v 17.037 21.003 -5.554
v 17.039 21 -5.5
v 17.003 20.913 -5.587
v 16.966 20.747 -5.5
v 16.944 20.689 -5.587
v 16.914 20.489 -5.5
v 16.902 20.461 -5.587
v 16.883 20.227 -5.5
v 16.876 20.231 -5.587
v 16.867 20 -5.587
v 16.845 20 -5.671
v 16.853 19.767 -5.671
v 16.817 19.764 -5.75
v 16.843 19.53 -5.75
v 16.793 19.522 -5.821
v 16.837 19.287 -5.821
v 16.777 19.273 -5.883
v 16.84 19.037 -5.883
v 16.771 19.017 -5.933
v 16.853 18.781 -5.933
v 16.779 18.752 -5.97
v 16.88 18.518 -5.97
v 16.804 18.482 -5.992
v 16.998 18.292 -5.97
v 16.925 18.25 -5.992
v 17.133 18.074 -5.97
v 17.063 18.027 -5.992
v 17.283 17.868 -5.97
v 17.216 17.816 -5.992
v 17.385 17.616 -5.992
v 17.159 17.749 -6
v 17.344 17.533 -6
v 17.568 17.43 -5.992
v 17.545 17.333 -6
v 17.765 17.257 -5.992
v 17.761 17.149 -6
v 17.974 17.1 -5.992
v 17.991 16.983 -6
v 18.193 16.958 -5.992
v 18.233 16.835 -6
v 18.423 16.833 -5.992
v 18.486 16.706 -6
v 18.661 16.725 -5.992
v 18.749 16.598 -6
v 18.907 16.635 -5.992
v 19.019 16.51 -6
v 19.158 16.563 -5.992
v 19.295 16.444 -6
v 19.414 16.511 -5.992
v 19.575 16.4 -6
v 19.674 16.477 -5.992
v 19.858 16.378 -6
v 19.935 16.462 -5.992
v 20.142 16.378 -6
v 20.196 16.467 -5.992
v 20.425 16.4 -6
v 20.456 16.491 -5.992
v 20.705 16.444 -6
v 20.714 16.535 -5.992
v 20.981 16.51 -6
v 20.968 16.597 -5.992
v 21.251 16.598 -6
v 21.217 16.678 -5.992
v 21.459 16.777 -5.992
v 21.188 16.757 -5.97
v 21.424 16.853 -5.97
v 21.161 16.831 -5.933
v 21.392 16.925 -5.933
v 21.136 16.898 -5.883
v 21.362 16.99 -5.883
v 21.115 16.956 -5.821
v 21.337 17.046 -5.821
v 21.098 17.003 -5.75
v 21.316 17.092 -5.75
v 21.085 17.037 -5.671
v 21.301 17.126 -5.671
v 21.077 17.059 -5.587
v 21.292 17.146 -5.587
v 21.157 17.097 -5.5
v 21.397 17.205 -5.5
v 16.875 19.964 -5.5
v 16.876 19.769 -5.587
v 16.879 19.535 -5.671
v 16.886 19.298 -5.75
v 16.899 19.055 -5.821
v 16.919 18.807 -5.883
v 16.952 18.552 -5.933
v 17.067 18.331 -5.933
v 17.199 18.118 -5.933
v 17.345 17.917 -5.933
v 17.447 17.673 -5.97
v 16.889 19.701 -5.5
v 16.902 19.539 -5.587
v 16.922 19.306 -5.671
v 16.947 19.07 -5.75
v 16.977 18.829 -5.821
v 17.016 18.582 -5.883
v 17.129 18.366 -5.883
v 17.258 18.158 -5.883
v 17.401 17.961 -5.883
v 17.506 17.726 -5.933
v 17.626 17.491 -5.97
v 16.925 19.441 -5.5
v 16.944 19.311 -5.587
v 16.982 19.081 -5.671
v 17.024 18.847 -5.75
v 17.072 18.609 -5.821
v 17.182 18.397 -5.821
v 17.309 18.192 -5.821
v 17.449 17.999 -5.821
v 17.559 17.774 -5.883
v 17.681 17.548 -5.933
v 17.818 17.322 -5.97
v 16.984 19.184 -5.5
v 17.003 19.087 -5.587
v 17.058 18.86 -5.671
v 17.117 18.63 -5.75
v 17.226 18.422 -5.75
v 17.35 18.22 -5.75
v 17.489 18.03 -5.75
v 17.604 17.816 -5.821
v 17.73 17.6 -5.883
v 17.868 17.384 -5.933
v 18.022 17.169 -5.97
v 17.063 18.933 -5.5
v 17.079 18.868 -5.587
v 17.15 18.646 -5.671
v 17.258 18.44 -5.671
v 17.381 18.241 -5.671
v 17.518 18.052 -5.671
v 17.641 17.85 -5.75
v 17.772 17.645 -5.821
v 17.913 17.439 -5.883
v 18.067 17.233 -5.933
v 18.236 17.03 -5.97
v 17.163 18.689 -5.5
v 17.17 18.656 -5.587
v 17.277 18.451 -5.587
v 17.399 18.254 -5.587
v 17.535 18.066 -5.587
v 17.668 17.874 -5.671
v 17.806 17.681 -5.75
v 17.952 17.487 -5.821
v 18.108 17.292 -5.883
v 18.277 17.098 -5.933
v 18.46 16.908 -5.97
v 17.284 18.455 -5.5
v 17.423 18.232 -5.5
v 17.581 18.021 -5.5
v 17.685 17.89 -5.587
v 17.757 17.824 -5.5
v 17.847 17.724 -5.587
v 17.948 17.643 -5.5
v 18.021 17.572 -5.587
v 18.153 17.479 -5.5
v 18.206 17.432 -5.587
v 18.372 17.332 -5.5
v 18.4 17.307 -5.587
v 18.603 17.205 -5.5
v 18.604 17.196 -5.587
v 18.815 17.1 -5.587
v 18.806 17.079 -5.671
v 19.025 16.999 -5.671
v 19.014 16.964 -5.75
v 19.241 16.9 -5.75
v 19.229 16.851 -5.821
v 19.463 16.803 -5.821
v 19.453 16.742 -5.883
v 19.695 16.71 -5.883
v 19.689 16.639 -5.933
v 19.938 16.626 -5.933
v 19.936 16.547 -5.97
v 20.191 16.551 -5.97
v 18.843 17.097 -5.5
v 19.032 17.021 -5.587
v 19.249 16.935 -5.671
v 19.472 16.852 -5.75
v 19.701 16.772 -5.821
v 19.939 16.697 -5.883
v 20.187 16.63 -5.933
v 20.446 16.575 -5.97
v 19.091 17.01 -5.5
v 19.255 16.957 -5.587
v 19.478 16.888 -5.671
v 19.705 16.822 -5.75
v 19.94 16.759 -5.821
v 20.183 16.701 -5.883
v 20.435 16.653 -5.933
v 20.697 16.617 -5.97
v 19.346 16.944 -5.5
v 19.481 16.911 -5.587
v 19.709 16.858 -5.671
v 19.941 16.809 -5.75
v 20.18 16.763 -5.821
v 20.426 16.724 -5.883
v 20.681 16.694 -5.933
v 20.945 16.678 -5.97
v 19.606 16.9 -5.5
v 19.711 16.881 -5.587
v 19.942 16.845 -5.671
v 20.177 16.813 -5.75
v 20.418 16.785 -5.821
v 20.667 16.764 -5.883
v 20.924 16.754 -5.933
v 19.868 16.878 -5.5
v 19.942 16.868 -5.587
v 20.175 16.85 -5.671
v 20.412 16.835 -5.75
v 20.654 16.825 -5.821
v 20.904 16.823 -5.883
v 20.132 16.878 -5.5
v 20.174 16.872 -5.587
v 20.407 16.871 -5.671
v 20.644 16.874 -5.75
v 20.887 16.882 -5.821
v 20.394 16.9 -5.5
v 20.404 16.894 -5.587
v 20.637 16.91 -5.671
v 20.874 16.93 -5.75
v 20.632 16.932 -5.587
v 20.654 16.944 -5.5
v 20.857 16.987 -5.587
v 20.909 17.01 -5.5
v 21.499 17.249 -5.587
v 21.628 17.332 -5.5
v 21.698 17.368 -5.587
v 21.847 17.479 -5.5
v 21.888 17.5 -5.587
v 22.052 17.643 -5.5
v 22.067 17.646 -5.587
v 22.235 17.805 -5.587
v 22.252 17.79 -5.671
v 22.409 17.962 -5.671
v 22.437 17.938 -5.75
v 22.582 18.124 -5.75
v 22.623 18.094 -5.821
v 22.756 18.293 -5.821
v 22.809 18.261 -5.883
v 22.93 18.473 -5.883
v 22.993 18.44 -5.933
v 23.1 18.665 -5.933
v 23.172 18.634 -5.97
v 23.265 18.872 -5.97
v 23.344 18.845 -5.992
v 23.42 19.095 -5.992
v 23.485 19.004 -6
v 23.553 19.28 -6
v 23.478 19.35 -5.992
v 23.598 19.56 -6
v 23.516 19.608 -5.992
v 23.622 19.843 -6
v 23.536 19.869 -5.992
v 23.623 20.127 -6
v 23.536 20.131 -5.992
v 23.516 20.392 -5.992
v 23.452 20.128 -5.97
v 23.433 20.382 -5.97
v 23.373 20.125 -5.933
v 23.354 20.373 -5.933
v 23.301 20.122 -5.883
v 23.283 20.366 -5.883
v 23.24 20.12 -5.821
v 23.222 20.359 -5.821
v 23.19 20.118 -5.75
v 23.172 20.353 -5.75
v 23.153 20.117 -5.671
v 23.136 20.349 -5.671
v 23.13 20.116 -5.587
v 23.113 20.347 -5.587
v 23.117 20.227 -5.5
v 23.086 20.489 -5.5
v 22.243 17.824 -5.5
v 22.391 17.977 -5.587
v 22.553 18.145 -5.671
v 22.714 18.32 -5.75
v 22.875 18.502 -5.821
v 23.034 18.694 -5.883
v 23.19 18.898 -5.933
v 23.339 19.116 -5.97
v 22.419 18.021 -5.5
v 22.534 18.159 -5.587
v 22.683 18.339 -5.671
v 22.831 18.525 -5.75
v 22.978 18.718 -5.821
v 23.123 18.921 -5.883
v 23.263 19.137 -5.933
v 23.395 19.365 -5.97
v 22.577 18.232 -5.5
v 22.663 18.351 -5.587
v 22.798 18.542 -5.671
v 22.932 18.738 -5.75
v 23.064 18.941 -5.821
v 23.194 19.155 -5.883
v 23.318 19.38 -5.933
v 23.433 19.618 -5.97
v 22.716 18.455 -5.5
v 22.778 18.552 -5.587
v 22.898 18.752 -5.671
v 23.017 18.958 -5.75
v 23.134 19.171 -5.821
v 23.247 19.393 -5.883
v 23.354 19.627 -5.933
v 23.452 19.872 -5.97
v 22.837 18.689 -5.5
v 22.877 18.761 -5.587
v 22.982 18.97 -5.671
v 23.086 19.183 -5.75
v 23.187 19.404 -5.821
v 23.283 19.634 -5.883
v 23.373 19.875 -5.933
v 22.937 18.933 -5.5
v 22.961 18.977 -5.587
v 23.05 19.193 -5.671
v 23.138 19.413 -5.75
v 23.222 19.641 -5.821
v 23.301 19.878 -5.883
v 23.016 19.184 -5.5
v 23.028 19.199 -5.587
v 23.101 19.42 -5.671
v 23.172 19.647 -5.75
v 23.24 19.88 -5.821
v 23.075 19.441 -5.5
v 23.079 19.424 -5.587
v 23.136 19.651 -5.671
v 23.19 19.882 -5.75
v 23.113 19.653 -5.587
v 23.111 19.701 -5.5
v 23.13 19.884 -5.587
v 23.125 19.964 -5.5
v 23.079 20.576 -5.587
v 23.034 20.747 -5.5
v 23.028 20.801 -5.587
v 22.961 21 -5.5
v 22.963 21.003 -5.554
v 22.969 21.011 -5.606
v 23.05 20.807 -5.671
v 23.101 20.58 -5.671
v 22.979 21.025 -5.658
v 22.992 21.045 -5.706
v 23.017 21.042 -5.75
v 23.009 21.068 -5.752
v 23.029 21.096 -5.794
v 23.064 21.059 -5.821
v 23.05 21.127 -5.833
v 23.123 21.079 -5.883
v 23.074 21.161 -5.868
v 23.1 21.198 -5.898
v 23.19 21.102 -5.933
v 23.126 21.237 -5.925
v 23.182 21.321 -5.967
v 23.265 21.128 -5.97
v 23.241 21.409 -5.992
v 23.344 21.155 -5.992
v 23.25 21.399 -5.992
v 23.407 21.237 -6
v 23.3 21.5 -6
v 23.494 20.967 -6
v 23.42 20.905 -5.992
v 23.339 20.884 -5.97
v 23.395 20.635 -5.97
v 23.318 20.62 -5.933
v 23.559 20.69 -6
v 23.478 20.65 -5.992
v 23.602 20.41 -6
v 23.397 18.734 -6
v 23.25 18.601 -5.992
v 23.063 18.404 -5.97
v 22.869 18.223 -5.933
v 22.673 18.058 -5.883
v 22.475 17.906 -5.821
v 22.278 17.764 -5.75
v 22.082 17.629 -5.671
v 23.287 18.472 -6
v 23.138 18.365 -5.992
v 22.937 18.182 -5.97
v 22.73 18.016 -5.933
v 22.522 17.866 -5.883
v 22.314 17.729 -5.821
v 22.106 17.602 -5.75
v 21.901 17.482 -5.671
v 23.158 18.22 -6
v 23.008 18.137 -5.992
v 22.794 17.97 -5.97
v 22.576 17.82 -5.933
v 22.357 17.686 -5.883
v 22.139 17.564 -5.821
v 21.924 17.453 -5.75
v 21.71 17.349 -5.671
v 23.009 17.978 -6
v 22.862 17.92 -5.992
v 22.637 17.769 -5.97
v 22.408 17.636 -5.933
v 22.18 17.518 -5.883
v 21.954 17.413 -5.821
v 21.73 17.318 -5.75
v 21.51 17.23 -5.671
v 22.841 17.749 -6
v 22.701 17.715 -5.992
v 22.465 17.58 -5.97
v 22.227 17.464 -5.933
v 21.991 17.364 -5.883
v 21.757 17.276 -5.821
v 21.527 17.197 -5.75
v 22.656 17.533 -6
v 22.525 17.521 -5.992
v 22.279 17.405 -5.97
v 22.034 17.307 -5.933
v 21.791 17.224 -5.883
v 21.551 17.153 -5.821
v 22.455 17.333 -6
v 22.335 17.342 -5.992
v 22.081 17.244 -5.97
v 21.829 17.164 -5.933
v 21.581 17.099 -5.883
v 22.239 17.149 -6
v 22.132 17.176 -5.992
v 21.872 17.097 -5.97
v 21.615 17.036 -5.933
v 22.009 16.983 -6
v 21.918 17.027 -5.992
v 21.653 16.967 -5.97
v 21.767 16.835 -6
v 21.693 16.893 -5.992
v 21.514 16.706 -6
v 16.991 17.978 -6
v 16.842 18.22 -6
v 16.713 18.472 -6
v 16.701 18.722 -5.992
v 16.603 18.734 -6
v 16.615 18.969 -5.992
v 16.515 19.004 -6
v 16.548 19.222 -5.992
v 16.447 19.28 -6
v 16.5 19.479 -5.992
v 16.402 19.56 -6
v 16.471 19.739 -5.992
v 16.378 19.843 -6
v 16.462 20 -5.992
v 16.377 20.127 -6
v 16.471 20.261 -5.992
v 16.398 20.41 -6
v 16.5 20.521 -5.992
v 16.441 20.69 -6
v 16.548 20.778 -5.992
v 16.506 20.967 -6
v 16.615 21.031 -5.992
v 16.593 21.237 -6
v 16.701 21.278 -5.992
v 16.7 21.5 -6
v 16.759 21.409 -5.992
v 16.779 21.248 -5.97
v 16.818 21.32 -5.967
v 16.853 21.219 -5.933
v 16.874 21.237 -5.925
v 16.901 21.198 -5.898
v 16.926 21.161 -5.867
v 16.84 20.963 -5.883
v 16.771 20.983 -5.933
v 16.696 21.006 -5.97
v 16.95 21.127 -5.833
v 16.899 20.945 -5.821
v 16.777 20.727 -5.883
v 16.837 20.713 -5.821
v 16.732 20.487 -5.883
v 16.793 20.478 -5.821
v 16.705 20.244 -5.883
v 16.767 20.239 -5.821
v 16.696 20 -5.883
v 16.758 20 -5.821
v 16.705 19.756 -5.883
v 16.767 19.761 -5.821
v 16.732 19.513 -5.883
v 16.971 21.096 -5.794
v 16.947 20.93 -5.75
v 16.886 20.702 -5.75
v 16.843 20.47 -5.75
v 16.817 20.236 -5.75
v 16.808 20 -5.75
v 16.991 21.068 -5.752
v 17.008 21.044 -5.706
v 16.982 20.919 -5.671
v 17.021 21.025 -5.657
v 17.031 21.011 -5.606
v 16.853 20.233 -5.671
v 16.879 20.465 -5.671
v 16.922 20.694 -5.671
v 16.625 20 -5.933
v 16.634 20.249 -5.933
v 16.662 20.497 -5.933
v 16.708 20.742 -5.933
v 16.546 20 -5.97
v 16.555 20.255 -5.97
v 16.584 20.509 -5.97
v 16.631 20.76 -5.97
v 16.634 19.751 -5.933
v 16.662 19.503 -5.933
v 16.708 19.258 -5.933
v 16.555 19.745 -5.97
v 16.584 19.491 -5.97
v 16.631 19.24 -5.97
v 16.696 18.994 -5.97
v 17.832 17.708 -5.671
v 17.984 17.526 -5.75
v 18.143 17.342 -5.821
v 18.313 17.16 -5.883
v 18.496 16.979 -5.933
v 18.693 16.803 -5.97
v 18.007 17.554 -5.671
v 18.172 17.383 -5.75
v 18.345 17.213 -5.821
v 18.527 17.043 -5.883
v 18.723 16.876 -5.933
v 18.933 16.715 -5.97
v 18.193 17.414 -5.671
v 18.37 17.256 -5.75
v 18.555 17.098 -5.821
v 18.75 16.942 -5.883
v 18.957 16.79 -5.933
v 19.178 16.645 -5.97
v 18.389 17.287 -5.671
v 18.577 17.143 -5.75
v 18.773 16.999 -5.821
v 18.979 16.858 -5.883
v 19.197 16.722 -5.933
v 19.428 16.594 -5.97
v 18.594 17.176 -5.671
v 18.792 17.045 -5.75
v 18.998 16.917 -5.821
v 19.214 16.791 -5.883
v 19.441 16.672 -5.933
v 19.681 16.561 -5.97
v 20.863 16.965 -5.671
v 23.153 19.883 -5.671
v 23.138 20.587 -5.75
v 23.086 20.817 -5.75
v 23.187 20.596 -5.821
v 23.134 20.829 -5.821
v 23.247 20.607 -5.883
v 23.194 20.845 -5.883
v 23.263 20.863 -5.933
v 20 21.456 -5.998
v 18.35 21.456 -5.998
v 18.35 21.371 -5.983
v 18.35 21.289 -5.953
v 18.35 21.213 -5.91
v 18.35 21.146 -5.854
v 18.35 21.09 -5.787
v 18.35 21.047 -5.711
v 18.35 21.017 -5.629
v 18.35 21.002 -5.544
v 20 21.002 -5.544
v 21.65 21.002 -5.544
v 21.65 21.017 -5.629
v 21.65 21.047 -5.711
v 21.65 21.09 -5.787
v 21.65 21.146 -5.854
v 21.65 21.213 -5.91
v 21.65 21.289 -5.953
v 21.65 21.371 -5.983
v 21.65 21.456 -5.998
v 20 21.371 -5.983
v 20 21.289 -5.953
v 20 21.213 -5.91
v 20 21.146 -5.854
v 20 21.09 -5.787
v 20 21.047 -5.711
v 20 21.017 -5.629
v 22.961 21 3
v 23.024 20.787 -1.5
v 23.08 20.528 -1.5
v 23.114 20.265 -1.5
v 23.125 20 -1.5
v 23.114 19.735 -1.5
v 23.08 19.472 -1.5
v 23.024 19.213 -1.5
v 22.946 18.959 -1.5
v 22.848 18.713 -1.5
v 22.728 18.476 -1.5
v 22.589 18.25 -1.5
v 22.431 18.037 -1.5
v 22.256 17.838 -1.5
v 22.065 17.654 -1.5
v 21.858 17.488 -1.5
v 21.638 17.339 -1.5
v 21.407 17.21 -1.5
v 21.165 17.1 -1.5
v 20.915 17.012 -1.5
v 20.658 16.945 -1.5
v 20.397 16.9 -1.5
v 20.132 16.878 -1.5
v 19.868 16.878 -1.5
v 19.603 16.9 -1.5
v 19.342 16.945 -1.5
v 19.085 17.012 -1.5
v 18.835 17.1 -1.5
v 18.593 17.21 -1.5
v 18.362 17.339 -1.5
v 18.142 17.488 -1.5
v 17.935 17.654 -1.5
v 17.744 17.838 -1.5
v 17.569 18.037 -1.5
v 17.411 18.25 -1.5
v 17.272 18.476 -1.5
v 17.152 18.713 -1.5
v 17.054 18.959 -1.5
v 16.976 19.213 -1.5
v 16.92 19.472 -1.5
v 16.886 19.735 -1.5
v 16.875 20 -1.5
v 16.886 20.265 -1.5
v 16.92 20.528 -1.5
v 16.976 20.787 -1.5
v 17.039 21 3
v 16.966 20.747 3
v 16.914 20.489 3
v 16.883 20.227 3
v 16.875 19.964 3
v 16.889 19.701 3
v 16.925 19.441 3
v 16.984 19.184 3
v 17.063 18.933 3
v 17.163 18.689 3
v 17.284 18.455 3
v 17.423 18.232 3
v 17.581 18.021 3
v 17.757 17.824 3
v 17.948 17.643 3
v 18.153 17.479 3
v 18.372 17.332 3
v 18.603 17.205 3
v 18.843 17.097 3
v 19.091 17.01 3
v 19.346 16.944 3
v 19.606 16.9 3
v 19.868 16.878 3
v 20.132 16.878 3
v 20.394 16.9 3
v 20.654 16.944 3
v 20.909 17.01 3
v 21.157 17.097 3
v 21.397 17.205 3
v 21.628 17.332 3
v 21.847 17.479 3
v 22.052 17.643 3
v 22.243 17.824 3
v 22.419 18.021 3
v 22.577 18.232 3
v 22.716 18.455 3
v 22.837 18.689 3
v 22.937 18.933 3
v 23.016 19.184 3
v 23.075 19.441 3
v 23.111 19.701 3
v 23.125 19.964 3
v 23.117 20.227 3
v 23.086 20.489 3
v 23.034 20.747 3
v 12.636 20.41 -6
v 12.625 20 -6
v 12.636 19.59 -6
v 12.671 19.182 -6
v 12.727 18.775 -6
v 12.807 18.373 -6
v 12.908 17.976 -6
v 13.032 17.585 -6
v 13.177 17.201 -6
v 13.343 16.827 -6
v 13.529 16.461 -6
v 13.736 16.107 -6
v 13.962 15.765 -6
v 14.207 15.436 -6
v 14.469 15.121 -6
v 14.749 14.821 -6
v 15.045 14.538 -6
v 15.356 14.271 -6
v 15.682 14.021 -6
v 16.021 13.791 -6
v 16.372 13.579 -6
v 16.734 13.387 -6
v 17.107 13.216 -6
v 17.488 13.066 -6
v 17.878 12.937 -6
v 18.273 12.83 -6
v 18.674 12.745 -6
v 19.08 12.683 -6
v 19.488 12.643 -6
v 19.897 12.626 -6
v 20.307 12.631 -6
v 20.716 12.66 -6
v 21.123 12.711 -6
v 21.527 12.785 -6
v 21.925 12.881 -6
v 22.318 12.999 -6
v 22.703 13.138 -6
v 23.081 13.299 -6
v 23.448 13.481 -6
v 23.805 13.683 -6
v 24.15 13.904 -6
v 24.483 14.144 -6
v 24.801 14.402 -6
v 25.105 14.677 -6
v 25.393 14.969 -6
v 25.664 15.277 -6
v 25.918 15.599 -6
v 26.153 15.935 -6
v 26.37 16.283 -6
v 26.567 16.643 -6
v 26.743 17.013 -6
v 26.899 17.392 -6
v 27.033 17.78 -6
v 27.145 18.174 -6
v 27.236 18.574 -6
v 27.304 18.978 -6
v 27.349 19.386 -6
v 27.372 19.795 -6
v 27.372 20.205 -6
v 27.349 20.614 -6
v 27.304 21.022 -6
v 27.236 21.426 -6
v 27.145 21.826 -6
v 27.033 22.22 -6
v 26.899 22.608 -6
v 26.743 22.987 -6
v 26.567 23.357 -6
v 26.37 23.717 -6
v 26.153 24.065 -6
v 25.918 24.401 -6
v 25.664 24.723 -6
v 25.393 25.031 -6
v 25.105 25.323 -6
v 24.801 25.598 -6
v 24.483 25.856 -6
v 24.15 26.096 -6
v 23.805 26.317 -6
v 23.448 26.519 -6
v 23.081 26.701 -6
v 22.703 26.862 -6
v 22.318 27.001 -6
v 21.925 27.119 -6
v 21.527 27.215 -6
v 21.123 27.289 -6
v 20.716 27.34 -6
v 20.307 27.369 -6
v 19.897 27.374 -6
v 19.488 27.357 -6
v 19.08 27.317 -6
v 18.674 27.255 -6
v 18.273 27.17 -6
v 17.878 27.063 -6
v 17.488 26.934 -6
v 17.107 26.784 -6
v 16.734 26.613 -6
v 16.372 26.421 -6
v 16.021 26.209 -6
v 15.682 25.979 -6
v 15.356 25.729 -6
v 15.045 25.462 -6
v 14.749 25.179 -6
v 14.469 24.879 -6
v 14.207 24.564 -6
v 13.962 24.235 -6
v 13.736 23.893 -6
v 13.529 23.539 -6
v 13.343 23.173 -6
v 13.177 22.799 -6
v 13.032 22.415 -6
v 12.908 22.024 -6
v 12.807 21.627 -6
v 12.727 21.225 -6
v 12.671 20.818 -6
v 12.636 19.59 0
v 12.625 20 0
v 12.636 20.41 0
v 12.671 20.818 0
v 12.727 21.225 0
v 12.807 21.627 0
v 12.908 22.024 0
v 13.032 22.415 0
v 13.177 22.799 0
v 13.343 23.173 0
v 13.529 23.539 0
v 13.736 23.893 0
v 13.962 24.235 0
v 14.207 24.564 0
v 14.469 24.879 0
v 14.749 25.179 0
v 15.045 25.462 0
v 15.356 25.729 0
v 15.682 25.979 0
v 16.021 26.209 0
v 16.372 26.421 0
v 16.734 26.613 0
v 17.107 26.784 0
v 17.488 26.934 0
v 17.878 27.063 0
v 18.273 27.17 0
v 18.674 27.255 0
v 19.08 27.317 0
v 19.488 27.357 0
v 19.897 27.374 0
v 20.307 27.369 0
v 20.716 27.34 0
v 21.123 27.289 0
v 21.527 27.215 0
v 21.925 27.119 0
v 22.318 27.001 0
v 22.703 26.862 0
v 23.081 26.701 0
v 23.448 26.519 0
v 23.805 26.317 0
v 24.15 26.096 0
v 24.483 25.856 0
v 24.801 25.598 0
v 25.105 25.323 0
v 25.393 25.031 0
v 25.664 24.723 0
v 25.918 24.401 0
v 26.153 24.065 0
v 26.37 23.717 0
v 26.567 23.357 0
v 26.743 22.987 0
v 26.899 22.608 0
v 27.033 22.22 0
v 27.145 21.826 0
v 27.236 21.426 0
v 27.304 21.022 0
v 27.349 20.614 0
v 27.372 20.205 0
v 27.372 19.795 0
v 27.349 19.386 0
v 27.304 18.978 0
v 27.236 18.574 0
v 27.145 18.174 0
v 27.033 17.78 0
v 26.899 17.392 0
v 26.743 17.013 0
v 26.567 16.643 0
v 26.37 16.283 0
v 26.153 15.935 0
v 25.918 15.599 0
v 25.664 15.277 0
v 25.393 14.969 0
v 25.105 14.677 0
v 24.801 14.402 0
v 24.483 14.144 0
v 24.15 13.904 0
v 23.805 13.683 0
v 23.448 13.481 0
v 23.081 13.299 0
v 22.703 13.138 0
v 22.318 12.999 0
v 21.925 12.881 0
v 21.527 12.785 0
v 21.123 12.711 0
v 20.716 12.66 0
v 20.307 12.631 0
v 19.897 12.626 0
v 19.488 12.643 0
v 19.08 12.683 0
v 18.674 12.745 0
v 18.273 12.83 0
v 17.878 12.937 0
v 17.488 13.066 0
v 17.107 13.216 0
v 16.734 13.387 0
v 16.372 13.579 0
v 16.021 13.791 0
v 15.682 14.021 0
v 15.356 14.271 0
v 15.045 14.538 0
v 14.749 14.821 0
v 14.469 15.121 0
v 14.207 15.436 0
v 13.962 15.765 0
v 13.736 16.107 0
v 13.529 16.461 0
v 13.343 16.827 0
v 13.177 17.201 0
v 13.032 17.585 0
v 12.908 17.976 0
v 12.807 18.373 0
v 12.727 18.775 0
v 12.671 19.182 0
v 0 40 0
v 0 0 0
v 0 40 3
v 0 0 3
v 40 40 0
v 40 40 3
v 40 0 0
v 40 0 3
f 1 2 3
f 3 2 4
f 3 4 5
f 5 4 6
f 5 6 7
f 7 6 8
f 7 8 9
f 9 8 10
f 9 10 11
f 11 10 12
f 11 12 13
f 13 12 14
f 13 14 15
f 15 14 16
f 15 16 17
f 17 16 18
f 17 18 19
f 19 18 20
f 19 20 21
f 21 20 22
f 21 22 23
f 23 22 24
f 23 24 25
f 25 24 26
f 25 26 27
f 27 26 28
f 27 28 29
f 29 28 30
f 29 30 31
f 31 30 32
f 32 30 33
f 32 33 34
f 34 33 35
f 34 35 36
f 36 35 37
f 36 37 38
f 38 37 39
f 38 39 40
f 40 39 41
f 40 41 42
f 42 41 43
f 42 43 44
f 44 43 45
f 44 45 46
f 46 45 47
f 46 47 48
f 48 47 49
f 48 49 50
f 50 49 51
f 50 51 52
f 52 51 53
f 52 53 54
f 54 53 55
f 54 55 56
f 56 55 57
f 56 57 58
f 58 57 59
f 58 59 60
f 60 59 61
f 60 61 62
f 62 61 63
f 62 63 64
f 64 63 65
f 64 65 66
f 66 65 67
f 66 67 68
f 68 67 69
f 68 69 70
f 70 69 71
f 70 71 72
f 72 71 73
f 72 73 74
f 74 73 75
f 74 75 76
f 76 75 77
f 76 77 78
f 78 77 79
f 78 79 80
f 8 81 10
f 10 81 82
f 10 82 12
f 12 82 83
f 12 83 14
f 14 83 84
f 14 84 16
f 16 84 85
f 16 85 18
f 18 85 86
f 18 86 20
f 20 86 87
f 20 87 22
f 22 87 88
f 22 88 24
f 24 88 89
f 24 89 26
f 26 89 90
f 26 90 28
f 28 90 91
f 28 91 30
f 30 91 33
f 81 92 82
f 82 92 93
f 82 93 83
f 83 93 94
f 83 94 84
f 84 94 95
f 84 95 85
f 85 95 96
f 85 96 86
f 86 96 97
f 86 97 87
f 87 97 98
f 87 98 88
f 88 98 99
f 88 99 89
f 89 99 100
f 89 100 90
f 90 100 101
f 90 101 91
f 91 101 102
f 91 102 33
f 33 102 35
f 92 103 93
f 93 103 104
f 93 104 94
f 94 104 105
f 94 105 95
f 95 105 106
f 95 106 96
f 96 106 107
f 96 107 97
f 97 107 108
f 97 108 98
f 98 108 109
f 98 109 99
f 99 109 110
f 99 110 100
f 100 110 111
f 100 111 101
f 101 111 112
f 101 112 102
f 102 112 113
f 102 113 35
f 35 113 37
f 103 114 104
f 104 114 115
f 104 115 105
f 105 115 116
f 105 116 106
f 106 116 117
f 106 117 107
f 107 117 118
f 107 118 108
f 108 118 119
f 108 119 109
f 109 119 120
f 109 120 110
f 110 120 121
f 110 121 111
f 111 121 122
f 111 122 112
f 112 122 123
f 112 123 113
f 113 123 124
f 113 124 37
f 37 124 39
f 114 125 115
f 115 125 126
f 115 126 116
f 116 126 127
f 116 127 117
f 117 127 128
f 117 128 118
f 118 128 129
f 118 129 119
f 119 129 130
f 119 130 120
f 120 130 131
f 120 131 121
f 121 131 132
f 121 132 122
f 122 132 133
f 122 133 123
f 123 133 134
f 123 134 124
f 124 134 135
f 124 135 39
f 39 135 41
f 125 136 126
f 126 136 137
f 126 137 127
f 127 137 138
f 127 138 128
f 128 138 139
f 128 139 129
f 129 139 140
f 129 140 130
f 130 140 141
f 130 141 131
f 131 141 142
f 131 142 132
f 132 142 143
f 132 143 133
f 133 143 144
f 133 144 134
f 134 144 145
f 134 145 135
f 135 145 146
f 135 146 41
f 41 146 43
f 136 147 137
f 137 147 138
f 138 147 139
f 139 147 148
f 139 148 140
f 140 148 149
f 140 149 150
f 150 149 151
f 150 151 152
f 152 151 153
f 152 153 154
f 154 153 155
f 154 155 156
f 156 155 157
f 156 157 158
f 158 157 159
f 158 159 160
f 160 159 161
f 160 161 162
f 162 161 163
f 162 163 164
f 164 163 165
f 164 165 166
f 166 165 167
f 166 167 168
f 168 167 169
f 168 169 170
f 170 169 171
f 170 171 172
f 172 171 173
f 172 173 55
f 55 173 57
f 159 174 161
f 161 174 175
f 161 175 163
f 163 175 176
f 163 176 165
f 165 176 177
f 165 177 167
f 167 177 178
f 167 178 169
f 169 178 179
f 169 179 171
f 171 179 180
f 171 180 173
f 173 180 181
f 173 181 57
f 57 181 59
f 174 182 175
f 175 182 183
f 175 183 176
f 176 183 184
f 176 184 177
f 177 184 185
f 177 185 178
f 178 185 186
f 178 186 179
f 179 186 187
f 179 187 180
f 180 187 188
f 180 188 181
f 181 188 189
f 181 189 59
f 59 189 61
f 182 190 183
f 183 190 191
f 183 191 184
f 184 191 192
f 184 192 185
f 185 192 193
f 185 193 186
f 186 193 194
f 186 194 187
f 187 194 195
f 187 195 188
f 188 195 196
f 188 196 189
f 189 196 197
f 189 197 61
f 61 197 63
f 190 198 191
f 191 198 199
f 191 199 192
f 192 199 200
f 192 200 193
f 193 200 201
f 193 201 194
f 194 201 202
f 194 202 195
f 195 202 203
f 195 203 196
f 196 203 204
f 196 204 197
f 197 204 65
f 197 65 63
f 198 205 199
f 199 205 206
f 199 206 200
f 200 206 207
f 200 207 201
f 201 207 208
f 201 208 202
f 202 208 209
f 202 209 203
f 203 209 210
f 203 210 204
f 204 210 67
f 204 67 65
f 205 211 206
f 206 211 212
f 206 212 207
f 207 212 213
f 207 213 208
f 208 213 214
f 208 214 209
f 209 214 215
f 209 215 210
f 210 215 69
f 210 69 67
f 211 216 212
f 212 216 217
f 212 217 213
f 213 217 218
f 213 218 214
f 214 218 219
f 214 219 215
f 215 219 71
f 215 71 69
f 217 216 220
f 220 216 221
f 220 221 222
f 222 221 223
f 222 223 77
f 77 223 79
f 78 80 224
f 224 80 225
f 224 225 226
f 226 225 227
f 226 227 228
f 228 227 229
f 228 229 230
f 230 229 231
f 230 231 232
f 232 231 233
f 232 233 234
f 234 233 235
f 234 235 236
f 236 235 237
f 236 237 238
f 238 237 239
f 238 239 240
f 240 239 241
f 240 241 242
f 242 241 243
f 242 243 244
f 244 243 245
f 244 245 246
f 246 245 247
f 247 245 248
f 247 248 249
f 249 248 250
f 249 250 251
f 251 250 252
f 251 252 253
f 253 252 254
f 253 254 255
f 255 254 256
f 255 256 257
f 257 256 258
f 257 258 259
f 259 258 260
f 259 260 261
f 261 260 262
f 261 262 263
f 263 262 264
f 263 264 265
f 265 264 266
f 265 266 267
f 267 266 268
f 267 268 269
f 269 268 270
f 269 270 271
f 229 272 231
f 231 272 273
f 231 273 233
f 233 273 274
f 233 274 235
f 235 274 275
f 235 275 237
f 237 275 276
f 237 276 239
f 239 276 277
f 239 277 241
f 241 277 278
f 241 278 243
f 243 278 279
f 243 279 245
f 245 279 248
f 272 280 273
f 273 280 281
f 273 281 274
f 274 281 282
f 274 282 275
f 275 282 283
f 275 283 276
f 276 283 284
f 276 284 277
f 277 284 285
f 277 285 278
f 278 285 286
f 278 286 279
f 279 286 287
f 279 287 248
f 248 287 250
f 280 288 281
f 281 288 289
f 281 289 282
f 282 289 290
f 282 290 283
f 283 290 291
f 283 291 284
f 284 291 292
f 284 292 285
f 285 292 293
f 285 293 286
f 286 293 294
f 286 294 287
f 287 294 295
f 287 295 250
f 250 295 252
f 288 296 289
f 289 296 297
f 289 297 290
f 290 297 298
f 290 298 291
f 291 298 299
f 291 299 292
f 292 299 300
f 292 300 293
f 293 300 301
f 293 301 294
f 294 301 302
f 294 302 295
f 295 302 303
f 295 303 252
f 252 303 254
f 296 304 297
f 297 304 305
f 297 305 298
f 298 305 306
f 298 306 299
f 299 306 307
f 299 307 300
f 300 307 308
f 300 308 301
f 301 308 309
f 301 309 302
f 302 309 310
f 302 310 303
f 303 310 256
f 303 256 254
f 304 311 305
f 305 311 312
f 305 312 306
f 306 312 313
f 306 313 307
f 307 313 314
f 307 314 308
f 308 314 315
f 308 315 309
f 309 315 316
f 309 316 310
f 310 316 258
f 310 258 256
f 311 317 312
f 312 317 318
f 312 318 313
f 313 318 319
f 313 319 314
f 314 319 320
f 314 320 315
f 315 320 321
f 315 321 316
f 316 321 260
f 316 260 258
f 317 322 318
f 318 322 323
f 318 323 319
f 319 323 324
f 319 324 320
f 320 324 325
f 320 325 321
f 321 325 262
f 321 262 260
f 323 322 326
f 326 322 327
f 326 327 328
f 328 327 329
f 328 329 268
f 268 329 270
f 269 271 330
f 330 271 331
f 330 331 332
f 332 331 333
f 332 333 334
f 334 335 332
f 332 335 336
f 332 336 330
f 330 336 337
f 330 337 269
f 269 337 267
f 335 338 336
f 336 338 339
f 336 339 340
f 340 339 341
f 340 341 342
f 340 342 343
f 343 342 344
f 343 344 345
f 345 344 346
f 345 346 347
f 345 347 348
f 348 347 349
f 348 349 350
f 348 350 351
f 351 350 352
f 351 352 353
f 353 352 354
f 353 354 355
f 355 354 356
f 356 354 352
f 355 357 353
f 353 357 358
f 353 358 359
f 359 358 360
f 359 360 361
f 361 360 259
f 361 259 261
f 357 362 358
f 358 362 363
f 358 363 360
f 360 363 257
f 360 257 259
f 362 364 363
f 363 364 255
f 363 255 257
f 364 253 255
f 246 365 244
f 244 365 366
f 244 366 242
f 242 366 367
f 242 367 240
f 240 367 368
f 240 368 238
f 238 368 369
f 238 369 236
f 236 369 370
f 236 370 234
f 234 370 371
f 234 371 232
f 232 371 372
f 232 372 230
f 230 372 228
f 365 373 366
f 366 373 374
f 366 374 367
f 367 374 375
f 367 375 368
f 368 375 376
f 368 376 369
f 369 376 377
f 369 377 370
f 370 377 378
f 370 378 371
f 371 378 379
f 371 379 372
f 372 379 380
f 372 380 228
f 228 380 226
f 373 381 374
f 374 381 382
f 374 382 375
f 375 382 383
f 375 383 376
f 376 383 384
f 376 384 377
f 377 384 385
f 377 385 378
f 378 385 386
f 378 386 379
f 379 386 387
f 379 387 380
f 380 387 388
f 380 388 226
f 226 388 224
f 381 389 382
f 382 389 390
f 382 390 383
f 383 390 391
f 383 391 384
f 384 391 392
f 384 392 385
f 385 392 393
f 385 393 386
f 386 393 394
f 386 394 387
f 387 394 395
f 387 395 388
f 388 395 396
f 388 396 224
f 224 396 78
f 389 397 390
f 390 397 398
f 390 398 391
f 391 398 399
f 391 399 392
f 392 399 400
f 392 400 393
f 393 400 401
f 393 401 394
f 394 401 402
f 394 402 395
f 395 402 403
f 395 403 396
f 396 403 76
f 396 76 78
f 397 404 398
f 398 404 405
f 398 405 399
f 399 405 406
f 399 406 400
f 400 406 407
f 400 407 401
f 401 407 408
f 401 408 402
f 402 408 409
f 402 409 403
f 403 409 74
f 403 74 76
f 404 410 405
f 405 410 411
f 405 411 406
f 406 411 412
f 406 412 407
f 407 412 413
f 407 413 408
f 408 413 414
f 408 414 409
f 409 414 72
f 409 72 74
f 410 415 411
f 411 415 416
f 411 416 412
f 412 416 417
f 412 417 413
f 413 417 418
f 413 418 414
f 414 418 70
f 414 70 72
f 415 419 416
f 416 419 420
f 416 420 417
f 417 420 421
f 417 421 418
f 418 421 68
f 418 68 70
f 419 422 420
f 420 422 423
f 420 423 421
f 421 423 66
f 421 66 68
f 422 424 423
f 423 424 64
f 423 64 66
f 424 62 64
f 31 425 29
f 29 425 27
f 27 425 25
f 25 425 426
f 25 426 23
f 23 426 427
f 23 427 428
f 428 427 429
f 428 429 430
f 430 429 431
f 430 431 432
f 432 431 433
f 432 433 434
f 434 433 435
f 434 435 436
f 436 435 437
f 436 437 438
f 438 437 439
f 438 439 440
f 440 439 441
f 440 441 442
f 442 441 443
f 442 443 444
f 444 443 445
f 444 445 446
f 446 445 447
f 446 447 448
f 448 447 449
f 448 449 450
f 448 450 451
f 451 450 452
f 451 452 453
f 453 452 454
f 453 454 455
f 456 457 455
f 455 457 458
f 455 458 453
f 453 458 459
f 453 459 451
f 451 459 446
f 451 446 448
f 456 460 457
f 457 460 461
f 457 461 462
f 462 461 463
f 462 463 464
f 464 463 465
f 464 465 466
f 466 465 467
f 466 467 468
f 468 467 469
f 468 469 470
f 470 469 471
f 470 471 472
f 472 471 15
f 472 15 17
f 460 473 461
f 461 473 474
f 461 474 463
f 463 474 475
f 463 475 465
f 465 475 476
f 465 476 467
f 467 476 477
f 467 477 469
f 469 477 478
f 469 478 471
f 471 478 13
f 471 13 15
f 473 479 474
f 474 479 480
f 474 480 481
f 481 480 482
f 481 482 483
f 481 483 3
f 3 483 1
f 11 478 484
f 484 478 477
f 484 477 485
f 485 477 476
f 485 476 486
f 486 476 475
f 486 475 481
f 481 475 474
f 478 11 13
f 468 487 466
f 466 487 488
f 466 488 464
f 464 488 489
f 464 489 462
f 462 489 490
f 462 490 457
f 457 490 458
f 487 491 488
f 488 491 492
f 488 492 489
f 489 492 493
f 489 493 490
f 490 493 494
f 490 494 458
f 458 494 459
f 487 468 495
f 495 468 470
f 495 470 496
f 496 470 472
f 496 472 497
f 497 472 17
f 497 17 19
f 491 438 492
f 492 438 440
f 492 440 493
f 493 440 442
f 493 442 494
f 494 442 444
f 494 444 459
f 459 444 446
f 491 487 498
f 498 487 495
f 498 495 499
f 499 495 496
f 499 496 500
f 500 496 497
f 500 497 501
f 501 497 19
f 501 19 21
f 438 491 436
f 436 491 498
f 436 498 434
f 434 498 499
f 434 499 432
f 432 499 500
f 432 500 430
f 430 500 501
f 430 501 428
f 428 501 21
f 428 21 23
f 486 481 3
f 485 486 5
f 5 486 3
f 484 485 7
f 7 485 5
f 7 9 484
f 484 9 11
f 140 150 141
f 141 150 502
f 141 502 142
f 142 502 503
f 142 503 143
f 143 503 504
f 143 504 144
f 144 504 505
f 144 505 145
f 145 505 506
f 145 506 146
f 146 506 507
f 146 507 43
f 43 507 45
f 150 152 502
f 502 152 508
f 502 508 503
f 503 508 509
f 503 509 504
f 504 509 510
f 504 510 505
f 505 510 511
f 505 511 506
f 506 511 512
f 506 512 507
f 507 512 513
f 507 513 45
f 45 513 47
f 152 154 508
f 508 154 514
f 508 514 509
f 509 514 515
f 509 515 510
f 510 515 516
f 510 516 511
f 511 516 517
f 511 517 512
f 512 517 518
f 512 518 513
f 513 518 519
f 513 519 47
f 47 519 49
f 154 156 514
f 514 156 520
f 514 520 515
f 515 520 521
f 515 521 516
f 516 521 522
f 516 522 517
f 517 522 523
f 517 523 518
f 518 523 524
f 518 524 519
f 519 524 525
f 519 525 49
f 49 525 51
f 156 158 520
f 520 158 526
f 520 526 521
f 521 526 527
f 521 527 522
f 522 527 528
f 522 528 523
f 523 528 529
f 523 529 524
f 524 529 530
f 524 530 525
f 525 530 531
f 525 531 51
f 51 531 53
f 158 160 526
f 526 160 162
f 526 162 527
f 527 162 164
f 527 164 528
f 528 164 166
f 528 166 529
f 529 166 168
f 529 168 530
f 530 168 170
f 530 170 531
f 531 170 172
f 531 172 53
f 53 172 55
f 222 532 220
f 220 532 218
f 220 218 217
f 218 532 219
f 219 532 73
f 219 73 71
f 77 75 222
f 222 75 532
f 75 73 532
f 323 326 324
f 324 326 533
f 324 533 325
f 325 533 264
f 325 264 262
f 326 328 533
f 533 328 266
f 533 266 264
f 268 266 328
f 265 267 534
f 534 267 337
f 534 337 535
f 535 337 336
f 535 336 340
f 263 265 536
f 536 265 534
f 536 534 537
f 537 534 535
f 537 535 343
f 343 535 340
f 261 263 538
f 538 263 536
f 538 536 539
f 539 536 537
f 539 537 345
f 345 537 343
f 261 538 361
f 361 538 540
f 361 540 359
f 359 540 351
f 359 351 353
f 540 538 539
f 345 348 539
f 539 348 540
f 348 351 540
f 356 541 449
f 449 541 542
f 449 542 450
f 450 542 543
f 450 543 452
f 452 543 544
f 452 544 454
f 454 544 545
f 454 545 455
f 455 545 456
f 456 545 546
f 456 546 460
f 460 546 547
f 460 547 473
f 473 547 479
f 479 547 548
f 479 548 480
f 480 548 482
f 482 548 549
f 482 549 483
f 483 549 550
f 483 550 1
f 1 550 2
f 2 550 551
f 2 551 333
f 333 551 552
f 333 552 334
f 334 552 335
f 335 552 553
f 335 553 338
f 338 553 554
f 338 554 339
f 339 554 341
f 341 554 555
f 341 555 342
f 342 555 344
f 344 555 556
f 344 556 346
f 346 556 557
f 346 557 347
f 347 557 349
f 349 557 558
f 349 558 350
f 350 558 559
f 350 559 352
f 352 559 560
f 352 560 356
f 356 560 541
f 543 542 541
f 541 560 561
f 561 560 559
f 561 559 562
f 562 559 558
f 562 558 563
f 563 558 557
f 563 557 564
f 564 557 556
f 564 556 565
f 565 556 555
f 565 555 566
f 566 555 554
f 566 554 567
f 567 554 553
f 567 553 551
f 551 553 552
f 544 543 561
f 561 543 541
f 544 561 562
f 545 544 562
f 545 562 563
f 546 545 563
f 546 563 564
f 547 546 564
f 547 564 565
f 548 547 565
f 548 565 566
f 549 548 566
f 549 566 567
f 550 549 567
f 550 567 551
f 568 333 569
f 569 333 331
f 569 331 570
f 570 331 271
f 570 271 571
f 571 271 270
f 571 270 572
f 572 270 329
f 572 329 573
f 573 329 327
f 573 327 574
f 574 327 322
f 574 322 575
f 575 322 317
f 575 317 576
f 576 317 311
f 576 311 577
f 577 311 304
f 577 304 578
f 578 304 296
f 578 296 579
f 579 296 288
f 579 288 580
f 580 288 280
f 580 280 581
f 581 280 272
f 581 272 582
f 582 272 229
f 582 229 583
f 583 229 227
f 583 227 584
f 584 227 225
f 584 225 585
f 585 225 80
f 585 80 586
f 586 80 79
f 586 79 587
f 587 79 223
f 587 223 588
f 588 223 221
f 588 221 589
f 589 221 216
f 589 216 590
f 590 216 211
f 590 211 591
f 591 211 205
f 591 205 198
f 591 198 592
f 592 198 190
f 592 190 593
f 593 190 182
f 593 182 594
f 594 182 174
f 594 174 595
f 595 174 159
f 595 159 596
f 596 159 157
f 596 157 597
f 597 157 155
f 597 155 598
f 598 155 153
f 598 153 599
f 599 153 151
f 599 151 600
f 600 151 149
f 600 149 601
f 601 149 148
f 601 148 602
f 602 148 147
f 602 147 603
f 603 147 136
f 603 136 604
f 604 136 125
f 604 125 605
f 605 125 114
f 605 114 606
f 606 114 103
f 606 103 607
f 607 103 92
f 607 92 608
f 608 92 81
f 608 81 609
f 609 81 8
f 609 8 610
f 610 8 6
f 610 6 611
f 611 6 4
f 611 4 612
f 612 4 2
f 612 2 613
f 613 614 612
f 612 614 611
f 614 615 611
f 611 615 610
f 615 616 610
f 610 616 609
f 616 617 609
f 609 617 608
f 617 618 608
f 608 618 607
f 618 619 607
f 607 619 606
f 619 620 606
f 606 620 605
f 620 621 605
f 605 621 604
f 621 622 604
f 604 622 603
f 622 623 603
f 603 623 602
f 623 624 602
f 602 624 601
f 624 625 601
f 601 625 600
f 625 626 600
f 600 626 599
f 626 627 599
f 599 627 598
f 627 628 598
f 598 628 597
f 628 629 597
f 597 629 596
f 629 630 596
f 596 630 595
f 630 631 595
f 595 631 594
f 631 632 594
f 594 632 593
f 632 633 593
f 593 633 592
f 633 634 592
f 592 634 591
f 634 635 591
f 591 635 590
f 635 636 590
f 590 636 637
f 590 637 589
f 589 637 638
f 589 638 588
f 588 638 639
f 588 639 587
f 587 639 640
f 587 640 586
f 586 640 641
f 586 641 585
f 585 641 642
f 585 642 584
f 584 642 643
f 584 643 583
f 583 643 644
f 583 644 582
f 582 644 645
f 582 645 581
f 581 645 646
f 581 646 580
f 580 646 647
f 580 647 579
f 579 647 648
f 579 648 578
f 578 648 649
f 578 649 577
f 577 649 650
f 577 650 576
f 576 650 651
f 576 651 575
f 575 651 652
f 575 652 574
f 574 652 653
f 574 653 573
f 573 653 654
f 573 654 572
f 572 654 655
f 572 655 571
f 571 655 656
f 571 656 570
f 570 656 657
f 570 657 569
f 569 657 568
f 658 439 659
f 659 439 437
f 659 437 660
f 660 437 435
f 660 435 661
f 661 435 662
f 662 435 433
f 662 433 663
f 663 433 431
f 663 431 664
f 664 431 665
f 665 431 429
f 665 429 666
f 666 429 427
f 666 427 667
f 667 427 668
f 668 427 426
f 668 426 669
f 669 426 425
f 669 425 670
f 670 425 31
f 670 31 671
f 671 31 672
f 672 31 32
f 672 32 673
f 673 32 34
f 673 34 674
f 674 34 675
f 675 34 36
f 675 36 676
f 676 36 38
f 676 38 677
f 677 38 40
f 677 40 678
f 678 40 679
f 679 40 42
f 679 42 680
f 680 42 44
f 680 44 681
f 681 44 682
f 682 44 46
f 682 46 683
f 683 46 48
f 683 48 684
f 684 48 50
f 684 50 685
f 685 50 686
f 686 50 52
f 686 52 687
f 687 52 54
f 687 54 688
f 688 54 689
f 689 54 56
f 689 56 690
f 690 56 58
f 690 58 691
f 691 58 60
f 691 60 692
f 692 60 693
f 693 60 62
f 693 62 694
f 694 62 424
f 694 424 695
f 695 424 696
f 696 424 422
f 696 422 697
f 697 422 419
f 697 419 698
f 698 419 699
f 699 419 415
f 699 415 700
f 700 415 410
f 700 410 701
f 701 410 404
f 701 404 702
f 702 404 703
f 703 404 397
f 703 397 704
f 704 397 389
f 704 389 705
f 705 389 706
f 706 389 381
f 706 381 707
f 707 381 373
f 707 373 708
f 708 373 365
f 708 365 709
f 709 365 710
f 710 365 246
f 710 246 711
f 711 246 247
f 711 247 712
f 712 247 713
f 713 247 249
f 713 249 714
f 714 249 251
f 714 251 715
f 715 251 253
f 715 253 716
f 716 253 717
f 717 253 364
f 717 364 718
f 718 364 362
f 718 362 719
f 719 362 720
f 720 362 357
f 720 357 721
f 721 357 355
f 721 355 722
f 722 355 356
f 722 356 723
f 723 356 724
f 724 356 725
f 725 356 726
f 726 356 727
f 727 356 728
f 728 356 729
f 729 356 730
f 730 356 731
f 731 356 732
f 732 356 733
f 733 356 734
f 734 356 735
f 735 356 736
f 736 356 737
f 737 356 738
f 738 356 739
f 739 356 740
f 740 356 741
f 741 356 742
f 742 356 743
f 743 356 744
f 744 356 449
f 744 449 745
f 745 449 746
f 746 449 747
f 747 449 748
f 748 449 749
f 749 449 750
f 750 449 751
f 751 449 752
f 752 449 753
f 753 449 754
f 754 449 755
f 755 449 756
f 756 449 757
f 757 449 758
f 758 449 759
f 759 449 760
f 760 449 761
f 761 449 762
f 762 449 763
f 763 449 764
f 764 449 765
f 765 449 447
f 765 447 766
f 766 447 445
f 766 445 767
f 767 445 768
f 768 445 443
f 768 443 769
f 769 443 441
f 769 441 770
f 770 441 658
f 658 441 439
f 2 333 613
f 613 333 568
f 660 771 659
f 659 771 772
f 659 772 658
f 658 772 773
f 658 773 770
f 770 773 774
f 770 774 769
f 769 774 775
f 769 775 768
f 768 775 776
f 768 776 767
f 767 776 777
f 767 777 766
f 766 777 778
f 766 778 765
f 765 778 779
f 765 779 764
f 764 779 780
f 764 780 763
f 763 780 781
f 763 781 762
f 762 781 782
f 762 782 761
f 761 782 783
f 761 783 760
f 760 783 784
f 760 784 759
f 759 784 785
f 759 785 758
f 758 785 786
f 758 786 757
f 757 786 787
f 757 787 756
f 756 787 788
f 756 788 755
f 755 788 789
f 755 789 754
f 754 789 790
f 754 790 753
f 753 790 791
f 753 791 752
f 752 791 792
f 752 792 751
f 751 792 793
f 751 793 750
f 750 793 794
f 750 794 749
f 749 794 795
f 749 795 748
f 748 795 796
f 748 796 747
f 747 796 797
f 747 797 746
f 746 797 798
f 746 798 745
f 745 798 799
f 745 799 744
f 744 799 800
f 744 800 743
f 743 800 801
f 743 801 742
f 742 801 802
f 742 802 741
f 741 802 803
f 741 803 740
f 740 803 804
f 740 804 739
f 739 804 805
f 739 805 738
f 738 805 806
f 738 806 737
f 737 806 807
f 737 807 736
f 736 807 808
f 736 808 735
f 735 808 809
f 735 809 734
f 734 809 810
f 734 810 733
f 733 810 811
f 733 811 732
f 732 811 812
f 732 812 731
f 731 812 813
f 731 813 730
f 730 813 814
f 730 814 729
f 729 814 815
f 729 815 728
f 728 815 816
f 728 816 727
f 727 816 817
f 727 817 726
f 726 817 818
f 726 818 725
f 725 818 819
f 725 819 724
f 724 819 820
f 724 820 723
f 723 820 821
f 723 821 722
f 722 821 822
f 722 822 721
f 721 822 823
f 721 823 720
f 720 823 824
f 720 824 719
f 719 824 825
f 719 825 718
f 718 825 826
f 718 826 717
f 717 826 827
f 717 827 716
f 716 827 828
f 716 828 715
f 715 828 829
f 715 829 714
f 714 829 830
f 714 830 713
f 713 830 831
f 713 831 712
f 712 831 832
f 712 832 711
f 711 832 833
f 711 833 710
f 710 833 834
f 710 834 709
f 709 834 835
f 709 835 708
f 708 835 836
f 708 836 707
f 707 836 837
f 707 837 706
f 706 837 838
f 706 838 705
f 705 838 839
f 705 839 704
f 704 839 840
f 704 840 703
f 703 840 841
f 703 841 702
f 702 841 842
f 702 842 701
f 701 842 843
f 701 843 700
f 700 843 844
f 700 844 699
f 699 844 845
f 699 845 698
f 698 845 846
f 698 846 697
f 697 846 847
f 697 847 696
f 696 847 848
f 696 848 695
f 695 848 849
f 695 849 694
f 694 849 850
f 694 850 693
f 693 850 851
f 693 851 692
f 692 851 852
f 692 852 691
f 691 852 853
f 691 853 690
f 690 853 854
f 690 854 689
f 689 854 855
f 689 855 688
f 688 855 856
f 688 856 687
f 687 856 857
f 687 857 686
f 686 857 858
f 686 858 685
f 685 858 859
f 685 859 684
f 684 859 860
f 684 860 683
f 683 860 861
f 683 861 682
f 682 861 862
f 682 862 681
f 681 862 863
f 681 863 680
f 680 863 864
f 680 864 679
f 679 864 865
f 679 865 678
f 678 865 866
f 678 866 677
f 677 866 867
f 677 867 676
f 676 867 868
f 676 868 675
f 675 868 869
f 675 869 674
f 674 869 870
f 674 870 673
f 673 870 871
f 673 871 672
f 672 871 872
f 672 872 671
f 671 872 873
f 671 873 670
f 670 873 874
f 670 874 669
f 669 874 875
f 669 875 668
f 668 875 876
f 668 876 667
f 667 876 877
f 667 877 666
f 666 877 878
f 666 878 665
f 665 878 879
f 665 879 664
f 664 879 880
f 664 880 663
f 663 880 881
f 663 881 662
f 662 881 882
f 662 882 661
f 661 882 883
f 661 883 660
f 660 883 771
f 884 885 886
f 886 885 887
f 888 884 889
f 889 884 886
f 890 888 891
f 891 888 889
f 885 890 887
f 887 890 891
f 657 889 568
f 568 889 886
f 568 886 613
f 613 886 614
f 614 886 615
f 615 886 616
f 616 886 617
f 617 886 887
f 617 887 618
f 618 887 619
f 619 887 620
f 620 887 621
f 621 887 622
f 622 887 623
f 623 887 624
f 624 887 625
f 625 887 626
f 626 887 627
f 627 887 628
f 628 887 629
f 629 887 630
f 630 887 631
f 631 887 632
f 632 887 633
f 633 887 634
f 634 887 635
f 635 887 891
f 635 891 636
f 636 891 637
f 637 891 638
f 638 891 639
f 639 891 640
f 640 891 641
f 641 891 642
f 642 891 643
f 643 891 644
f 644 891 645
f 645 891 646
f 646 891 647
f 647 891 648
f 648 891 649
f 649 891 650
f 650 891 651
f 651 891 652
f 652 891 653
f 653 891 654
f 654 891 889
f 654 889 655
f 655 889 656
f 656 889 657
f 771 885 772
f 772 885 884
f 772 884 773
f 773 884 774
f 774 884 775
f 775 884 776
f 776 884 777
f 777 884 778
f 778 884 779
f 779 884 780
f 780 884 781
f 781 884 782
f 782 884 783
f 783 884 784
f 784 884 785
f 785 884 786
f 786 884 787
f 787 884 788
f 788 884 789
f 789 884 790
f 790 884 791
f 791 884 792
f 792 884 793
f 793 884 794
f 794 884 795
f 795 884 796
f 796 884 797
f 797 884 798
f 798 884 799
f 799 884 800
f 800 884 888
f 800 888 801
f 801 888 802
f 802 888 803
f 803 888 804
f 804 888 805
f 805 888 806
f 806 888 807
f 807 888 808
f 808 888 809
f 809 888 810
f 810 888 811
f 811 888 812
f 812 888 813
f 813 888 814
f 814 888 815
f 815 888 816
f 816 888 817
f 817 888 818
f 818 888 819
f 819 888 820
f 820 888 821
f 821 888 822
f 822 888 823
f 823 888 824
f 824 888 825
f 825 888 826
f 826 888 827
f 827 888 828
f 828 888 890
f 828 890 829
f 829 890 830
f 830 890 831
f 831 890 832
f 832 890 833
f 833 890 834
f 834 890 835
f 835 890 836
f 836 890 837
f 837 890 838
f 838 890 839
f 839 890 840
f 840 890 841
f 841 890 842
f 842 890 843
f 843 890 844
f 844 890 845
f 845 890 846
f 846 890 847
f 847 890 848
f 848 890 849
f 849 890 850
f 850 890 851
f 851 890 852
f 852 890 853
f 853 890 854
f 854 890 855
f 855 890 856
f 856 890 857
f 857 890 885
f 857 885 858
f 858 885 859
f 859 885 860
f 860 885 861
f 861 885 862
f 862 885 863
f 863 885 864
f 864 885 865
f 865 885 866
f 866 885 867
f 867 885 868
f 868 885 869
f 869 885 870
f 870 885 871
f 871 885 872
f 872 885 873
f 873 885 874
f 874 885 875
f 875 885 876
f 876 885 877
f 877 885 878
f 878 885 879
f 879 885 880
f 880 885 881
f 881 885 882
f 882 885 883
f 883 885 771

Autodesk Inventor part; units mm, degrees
ref_plane "YZ Plane" through (0, 0, 0) normal (1, 0, 0) x (0, 1, 0)
ref_plane "XZ Plane" through (0, 0, 0) normal (0, 1, 0) x (-1, 0, 0)
ref_plane "XY Plane" through (0, 0, 0) normal (0, 0, 1) x (1, 0, 0)
sketch "Sketch8" plane through (0, 0, 0) normal (0, 0, 1) x (1, 0, 0)
  line L0 (0, 0) -> (40, 0)
  line L1 (40, 0) -> (40, 40)
  line L2 (40, 40) -> (0, 40)
  line L3 (0, 40) -> (0, 0)
  dimension "d35" = 40
  dimension "d36" = 40
extrude "Extrusion8" add sketch "Sketch8" along normal blind 3
sketch "Sketch9" plane through (0, 0, 0) normal (0, 0, -1) x (-1, 0, 0)
  line L0 (0, 40) -> (0, 0) projected
  line L1 (0, 20) -> (-20, 20)
  circle A0 centre (-20, 20) radius 7.375
  dimension "d39" = 20
  dimension "d40" = 14.75
extrude "Extrusion9" add sketch "Sketch9" along normal blind 6
sketch "Sketch10" plane through (20, 20, -6) normal (0, 0, -1) x (-1, 0, 0)
  circle A0 centre (0, 0) radius 3.125
  line L0 (0, 0) -> (0, 1)
  line L1 (0, 1) -> (-2.9607, 1)
  line L2 (0, 1) -> (2.9607, 1)
  point P0 (20, -20)
  dimension "d43" = 6.25
  dimension "d44" = 1
extrude "Extrusion10" cut sketch "Sketch10" against normal up to next contours A0 L1 L2 picked at (-0.0807, -1.7325)
fillet "Fillet1" radius 0.5 2 edges at (20, 16.875, -6) (20, 21, -6)
equation "\"BendRadius\" = Thickness"
equation "\"BendReliefWidth\" = Thickness"
equation "\"BendReliefDepth\" = 0.5 * Thickness"
equation "\"CornerReliefSize\" = 4 * Thickness"
equation "\"MinimumRemnant\" = 2 * Thickness"
equation "\"TransitionRadius\" = BendRadius"
equation "\"JacobiRadiusSize\" = BendRadius"
equation "\"GapSize\" = Thickness"
equation "\"Thickness\" = 0.5"
properties part number "baseRotor1"
